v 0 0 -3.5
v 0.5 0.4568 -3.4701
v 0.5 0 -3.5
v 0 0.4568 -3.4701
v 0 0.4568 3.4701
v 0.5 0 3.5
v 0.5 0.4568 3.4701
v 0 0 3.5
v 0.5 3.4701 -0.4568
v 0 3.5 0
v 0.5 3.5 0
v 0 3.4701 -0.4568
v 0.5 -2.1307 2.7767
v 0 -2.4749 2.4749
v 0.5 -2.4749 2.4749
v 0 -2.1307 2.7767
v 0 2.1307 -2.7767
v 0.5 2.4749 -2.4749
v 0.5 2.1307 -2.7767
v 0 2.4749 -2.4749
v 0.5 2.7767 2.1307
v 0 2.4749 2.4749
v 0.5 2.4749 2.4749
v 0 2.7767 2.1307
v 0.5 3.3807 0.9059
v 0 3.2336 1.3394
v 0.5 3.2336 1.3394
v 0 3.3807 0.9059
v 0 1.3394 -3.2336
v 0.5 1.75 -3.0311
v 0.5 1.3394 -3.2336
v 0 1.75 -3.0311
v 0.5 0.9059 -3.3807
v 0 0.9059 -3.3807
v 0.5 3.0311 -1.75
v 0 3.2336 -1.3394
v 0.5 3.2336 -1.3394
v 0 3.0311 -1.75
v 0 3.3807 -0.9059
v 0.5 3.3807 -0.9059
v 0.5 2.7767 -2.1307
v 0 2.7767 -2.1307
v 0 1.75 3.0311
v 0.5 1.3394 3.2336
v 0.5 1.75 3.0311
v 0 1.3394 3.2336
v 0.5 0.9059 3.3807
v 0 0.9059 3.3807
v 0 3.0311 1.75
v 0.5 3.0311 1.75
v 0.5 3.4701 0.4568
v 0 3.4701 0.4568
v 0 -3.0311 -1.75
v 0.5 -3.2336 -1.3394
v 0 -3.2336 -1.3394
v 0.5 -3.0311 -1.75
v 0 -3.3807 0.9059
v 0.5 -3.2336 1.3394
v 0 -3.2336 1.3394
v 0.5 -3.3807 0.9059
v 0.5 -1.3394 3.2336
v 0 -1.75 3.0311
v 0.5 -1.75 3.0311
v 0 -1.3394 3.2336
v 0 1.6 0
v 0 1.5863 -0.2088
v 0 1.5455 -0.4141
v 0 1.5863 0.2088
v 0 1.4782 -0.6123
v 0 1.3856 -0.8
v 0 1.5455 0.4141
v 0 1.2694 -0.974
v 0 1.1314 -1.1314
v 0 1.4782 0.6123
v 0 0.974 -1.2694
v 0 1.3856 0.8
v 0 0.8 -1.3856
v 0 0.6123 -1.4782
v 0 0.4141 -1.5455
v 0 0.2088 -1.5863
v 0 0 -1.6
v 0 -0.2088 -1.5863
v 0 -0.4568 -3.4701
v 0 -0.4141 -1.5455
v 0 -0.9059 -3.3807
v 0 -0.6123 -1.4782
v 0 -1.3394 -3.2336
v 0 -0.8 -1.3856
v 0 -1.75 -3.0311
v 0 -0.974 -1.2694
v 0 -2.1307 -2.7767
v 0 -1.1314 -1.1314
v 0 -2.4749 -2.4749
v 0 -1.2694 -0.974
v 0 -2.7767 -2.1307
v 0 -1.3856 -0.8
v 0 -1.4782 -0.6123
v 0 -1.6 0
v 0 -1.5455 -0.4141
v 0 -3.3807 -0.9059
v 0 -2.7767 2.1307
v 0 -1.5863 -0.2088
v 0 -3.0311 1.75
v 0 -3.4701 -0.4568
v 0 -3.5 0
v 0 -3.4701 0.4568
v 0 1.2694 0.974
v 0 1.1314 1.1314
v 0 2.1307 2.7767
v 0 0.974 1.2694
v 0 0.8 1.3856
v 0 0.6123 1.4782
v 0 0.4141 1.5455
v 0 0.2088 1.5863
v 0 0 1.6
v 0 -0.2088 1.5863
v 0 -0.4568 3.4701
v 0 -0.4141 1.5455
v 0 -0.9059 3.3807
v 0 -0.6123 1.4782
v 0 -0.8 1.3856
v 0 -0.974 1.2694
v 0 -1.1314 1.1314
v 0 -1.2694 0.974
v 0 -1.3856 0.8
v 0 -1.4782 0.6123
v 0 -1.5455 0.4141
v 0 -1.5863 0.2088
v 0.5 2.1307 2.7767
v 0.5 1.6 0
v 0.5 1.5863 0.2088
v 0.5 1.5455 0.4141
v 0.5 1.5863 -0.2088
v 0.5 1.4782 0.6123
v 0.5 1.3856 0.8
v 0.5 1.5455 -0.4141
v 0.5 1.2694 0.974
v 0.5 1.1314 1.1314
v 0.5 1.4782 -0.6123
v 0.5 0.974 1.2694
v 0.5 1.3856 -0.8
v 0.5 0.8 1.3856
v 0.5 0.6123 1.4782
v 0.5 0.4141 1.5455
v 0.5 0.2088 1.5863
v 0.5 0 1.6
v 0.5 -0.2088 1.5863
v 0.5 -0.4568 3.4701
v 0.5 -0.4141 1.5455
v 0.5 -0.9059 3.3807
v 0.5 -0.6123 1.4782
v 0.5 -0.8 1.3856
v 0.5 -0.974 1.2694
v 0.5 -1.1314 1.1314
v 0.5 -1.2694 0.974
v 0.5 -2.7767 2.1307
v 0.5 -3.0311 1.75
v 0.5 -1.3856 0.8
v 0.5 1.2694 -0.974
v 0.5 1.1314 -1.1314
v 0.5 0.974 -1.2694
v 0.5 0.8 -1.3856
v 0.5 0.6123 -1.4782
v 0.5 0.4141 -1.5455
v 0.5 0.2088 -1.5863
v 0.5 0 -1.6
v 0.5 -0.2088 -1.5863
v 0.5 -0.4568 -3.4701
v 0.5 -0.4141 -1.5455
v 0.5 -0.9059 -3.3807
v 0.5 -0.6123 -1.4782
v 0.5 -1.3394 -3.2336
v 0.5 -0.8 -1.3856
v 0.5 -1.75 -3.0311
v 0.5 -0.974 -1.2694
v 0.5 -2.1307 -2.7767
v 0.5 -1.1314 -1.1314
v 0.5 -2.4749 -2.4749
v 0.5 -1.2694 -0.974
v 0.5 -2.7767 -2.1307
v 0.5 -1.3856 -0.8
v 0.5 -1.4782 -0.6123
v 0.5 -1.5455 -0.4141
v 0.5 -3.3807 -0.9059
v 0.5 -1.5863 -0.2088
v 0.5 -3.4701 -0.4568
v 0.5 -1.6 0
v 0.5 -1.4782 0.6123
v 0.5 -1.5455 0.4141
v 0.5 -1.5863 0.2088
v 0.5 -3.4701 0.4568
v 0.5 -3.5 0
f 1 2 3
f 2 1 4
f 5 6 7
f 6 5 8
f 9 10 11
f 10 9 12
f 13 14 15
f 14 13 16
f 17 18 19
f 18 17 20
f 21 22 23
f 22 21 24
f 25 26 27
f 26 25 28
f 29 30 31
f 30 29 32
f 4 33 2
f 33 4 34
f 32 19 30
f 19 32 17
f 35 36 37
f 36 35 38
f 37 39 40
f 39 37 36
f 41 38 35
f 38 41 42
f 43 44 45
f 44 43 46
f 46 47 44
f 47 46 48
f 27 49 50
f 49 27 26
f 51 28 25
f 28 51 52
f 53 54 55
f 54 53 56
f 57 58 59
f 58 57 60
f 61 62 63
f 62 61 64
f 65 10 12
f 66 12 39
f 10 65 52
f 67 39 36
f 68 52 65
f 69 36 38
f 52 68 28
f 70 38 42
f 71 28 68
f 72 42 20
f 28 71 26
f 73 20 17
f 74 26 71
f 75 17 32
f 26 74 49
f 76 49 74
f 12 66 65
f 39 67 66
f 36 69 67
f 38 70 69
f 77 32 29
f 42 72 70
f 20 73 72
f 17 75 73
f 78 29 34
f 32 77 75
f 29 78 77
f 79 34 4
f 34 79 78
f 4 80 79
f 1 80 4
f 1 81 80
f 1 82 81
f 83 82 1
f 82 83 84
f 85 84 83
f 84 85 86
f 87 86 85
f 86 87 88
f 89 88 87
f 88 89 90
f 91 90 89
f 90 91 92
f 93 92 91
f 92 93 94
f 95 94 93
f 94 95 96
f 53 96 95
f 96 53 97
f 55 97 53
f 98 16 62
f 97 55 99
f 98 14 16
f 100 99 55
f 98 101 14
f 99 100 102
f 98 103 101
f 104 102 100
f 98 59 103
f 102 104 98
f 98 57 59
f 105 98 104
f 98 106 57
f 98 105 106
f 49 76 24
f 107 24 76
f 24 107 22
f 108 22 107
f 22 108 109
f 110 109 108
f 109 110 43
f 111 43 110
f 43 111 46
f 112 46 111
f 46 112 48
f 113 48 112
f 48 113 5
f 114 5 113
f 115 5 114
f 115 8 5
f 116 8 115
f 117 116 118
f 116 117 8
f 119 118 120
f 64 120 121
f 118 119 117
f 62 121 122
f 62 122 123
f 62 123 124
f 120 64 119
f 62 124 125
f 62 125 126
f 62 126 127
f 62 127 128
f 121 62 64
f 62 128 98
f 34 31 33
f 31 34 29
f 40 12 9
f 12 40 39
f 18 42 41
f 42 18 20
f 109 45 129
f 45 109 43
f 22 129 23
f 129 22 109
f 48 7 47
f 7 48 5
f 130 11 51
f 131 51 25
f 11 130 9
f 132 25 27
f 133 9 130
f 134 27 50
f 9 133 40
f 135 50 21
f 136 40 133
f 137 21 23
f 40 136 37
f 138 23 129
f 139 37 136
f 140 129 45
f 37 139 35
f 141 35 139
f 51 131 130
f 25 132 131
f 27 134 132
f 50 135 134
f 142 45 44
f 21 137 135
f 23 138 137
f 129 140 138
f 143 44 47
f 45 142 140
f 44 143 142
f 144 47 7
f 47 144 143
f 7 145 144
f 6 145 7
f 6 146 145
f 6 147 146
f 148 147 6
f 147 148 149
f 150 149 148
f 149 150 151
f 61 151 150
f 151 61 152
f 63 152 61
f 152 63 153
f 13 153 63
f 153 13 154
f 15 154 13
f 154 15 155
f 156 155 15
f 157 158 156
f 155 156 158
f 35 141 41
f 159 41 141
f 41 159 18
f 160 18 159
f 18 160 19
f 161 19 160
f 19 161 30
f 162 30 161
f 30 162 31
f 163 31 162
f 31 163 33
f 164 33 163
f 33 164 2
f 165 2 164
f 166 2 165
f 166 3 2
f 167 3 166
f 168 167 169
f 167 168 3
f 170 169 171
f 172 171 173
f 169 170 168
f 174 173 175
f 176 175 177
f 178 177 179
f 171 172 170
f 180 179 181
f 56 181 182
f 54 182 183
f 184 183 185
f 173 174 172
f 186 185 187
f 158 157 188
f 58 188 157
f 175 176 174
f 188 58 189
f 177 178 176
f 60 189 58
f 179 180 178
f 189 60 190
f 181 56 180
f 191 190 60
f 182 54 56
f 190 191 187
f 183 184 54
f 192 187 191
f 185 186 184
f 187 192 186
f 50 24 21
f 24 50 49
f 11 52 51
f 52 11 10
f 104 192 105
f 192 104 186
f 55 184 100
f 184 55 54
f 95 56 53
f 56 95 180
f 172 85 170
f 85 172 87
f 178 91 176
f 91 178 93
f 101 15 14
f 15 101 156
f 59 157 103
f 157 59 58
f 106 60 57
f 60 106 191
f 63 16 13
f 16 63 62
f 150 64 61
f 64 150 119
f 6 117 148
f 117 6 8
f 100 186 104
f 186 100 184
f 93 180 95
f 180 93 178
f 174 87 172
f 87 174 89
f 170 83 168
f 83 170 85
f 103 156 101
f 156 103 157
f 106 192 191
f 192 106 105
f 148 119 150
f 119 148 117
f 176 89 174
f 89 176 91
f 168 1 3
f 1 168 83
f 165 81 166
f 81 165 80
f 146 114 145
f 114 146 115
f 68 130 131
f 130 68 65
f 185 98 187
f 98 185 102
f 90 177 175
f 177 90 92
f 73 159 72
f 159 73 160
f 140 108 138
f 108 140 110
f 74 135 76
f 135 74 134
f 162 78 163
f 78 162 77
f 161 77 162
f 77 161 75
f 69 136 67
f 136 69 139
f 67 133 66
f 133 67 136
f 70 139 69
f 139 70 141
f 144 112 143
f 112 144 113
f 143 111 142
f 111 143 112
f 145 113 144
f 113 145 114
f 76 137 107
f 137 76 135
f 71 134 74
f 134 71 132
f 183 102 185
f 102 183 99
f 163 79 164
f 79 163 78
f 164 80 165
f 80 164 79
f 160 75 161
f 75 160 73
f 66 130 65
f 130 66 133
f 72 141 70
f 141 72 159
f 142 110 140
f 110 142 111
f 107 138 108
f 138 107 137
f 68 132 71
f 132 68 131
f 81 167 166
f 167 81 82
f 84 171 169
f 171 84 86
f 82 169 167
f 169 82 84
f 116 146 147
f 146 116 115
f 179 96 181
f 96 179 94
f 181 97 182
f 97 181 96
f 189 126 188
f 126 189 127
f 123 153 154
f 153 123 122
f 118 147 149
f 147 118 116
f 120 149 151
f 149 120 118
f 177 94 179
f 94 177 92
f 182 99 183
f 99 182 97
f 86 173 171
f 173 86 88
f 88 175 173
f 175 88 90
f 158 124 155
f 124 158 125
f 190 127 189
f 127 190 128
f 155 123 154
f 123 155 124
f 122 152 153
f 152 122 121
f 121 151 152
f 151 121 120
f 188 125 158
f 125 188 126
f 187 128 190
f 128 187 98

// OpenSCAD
/**********************************************************************************************************************
 **
 ** parts/vitamins/washer_M3.scad
 **
 ** This file renders a washer of the dimensions specified by the file name.
 **
 **********************************************************************************************************************/

$fn = 48;

rotate([0, 90, 0])
	difference() {
		cylinder(d = 7.0, h = 0.5);
		cylinder(d = 3.2, h = 0.5);
	}
